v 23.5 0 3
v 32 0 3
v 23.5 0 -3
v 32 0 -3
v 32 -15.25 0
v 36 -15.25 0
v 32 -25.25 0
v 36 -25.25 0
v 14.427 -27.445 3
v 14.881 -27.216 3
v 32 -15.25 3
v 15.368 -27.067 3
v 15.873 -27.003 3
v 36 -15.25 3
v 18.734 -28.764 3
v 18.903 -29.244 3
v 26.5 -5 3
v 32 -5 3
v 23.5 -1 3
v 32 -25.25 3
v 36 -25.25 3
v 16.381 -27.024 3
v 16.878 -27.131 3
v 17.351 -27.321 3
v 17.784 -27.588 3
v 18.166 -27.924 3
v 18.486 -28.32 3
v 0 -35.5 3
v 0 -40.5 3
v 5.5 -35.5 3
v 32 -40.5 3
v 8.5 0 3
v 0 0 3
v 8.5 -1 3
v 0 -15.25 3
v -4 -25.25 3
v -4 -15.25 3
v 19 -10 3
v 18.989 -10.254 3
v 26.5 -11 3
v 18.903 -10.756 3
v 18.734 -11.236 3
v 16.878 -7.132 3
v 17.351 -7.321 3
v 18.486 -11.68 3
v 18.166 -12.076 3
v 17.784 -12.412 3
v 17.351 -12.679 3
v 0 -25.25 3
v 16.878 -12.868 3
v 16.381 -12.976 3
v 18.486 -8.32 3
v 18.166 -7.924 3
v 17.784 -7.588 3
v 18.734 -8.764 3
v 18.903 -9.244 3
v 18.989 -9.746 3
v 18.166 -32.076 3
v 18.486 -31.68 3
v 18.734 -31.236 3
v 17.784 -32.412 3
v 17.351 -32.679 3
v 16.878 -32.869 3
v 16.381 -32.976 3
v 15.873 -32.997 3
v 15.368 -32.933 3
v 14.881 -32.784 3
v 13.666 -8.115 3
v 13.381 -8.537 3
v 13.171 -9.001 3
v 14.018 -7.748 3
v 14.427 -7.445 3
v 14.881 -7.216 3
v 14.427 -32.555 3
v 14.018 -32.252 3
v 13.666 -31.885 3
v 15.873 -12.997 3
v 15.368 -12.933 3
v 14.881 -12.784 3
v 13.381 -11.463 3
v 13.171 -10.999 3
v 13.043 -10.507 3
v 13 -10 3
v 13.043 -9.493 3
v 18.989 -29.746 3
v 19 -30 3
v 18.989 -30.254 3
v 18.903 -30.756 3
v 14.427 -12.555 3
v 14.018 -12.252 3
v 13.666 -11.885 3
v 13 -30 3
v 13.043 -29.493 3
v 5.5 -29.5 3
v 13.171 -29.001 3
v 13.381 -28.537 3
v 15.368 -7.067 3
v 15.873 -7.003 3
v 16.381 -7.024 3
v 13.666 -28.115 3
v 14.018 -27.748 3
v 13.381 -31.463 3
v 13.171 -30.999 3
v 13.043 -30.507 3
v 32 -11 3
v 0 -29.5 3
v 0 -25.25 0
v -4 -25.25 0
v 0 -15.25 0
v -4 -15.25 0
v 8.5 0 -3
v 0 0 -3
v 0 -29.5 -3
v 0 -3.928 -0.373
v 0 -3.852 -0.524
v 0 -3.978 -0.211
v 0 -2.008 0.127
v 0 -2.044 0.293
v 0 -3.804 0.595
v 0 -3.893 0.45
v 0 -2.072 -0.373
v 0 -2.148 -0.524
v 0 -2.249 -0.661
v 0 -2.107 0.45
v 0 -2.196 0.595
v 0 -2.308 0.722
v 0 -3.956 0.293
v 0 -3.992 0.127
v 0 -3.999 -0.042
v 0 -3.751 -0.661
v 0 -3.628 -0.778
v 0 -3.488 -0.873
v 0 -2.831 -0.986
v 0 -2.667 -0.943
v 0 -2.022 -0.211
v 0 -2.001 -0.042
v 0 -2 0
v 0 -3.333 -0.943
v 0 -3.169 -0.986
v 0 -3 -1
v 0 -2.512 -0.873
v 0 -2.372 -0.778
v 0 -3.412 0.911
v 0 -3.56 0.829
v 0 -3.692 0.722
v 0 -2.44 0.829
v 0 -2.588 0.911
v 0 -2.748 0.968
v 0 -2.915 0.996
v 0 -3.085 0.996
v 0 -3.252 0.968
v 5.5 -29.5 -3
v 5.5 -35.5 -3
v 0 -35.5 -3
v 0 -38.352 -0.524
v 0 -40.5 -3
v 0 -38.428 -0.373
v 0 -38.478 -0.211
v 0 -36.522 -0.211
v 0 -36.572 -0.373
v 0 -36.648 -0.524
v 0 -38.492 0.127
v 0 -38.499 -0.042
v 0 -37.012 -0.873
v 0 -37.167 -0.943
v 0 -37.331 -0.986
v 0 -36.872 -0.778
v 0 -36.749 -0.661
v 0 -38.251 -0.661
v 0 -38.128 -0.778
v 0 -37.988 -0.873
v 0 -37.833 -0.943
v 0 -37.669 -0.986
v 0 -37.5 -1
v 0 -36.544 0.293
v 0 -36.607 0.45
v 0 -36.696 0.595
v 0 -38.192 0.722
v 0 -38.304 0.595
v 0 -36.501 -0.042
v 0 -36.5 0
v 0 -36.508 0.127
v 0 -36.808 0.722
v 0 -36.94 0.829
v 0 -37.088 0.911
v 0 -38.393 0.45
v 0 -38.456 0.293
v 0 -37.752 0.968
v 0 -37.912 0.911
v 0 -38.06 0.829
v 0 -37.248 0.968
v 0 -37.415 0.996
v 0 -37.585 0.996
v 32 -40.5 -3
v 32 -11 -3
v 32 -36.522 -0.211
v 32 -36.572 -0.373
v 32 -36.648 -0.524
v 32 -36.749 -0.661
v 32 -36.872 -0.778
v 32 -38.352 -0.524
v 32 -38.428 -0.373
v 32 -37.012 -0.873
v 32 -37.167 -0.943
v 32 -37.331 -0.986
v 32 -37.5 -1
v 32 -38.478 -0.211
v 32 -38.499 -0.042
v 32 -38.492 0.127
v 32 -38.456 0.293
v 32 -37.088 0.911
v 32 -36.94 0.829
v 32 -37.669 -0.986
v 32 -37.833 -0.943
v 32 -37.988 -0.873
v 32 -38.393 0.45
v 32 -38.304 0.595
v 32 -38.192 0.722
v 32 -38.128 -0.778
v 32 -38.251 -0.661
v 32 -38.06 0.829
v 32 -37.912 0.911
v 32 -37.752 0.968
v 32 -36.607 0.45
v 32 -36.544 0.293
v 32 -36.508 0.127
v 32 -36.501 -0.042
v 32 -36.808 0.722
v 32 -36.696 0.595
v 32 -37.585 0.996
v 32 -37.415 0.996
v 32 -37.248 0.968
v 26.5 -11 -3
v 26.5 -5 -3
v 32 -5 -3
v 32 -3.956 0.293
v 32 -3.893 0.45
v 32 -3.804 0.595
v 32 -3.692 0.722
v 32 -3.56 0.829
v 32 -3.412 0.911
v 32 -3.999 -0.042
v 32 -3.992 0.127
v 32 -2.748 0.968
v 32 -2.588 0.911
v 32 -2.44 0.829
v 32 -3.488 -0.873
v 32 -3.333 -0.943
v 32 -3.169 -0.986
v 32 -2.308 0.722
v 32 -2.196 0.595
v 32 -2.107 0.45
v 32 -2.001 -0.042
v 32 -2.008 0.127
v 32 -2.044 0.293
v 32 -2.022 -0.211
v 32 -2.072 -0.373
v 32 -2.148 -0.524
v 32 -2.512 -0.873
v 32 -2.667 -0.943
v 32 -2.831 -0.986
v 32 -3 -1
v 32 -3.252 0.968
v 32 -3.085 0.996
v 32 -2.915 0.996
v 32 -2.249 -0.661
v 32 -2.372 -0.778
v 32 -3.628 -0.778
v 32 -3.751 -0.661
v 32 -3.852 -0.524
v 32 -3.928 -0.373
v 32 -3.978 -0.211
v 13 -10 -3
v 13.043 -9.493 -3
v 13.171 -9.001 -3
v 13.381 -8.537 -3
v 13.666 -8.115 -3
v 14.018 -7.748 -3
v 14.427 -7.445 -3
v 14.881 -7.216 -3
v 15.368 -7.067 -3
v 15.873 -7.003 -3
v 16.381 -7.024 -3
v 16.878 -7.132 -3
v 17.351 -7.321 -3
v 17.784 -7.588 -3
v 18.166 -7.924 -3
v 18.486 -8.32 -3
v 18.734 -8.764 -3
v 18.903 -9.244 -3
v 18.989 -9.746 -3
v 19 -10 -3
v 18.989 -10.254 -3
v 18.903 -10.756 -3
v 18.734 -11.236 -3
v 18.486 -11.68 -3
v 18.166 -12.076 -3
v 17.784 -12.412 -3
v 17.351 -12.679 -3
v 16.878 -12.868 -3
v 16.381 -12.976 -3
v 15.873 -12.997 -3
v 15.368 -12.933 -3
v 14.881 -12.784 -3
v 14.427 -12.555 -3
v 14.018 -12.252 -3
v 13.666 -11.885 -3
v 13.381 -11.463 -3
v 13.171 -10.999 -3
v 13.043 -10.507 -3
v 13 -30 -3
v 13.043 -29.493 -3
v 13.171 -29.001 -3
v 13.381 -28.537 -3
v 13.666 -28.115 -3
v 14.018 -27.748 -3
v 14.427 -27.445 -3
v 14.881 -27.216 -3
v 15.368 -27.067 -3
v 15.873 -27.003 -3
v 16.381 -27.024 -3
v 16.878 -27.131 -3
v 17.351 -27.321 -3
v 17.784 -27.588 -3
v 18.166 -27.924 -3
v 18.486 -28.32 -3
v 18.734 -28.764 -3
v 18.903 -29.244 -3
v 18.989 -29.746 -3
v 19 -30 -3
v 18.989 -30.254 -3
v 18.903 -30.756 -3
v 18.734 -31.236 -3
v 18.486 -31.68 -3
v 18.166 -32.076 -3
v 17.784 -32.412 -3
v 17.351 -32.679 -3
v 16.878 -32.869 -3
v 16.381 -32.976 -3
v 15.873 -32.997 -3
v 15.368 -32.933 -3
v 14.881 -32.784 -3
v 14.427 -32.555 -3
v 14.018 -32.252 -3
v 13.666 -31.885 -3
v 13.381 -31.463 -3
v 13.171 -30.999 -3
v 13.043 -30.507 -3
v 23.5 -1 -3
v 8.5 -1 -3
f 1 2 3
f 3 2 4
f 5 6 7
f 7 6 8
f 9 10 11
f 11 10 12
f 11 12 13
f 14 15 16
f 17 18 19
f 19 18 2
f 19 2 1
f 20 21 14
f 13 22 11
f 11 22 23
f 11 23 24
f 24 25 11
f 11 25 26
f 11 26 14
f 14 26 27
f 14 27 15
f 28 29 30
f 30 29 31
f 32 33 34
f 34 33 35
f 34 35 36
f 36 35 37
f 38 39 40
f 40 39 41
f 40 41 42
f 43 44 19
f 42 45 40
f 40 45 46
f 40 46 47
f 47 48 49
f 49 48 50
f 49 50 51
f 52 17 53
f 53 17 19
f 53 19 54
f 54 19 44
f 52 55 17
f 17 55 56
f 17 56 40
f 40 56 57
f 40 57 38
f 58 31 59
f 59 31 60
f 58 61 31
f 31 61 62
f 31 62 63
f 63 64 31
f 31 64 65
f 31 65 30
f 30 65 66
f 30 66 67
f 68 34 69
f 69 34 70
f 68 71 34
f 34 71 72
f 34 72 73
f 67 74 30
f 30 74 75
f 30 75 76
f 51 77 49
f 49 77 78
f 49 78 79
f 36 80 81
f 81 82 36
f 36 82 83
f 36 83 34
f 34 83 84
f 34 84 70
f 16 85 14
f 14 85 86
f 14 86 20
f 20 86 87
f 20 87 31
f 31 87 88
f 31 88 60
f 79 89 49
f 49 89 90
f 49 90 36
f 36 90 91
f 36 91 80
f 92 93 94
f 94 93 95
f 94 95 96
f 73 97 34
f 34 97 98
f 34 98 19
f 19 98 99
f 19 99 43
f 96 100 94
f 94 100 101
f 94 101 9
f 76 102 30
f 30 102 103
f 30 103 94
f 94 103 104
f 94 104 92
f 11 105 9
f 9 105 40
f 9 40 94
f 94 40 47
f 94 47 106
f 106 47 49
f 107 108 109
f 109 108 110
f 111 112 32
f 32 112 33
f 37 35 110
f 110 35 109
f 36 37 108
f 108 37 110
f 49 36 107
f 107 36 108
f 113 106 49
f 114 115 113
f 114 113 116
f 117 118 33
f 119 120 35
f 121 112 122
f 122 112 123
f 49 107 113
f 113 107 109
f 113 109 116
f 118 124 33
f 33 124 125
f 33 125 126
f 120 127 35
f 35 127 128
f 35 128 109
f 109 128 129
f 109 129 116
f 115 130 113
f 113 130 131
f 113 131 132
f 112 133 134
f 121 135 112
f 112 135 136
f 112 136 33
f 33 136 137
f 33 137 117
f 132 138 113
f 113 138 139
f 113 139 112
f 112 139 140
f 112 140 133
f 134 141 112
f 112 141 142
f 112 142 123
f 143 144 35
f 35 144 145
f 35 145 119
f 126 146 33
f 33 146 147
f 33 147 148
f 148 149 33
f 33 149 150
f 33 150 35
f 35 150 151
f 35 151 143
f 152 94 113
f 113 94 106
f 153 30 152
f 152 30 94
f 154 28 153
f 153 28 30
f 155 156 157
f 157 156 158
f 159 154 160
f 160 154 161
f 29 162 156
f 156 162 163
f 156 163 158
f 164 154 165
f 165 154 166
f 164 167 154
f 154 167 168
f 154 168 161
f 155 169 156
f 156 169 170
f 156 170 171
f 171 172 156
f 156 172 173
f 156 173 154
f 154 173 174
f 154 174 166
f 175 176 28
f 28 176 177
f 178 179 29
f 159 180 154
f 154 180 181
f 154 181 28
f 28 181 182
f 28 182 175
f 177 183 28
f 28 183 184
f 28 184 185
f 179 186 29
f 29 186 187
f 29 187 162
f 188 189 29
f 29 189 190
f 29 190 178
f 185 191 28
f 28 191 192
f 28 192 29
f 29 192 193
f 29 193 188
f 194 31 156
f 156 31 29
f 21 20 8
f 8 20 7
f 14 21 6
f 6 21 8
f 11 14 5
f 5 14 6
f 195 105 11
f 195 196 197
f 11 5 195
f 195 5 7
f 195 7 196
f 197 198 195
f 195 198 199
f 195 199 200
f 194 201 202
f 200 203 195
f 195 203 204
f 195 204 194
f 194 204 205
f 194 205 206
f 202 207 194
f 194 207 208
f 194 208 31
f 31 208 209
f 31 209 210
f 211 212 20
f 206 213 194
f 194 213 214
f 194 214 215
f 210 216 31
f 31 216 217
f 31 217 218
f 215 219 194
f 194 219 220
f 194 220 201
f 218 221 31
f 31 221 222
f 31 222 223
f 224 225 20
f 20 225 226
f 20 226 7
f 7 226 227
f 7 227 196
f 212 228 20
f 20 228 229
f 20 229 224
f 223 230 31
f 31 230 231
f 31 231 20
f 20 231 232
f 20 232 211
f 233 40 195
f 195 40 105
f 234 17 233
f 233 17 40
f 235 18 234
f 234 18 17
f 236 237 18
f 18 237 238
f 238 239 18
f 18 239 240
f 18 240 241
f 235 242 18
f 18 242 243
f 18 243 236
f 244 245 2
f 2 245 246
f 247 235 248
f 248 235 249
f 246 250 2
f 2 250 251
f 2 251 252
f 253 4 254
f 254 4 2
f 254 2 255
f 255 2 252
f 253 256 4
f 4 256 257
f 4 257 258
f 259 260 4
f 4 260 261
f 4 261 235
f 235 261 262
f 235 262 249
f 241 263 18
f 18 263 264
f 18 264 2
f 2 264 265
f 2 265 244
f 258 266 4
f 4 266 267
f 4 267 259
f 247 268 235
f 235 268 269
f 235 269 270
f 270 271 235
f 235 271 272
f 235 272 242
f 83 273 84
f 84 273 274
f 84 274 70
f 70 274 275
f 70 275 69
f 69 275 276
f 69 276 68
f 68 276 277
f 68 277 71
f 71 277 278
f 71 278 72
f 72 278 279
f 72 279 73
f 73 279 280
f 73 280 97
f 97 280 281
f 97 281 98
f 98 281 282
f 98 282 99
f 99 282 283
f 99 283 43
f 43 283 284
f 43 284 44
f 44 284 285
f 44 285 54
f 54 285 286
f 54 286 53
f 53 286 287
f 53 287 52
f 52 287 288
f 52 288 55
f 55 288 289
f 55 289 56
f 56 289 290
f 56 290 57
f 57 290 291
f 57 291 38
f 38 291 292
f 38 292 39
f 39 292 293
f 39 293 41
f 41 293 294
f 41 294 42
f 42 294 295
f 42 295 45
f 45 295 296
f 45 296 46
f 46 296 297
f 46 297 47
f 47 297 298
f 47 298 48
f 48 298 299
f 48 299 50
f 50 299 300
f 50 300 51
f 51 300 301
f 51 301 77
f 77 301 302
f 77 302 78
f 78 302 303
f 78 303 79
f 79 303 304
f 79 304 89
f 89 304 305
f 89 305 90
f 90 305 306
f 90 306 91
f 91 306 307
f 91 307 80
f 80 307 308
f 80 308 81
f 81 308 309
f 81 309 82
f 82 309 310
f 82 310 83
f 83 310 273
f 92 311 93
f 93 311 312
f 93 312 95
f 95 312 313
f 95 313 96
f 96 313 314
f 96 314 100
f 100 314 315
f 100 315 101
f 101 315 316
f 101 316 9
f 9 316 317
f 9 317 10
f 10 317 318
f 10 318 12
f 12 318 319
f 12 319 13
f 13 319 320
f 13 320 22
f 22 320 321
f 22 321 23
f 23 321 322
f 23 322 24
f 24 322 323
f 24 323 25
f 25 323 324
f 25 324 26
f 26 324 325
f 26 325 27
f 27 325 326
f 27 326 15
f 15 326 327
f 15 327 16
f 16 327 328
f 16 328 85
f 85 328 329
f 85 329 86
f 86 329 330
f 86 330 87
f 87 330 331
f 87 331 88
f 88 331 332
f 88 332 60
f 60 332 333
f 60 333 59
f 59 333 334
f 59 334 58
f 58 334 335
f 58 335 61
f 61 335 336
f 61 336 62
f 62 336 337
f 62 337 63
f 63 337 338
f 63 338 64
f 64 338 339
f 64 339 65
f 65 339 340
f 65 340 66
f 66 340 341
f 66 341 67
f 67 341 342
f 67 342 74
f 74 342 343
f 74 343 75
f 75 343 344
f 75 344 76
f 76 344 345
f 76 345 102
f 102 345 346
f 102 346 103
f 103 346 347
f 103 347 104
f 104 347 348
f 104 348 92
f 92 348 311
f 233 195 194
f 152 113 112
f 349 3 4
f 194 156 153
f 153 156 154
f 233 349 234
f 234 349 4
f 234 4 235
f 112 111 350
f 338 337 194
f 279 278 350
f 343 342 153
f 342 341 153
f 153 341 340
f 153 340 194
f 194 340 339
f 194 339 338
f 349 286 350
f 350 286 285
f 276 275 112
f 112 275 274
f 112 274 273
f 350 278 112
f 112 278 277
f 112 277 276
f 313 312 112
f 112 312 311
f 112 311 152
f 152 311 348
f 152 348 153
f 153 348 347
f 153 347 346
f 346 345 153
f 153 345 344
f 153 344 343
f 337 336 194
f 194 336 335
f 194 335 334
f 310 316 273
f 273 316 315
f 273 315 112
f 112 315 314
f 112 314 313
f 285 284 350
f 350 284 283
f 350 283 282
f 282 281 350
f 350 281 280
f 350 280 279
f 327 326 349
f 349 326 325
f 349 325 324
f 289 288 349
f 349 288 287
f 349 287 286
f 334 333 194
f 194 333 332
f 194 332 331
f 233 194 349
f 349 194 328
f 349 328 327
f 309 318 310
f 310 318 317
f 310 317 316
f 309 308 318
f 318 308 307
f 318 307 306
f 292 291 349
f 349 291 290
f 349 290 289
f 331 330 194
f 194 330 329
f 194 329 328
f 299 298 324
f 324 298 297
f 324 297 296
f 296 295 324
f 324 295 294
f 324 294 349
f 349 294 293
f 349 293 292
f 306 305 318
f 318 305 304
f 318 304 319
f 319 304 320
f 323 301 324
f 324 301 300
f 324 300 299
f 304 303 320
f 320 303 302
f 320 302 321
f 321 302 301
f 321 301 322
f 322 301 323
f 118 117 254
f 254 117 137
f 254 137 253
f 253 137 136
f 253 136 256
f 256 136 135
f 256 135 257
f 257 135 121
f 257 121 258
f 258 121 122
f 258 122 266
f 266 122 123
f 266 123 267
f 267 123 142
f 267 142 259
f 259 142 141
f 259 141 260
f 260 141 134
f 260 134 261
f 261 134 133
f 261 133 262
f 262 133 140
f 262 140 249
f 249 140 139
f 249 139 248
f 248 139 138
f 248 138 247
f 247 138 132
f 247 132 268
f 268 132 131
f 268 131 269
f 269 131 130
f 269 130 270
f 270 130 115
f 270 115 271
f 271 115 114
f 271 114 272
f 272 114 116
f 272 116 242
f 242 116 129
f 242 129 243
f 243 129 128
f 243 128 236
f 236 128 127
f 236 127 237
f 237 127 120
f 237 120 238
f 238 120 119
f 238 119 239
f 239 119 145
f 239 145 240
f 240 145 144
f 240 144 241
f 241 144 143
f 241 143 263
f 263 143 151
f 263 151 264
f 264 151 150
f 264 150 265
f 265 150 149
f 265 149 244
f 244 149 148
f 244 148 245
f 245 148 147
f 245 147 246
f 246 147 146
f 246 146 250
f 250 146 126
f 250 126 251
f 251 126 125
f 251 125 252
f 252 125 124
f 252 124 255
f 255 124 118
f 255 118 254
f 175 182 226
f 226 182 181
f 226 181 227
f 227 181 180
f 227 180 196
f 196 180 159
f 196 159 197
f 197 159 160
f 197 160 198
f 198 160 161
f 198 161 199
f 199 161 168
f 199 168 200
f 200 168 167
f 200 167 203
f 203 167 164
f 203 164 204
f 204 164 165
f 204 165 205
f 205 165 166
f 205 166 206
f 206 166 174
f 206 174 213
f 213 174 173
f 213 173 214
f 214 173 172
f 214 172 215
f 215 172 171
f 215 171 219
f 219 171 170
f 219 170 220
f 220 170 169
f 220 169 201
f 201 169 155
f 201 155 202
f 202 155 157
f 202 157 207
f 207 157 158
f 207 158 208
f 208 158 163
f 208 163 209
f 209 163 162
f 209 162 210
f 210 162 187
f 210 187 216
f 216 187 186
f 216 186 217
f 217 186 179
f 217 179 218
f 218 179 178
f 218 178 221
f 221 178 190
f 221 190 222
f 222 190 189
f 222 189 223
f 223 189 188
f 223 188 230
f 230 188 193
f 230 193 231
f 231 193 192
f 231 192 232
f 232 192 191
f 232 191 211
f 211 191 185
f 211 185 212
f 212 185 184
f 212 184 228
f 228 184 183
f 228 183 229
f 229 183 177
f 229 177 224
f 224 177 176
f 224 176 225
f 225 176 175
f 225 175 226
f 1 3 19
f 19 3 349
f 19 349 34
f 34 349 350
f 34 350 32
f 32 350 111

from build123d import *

# Parameters (mm, degrees)
SKETCH_1_R          = 3
EXTRUDE_1_DEPTH     = 3
EXTRUDE_START       = -6
SKETCH_2_R          = 3
EXTRUDE_2_DEPTH     = 6
SKETCH_3_R          = 1
CUT_EXTRUDE_1_DEPTH = 55.270157545
SKETCH_6_W          = 15
SKETCH_6_H          = 1
CUT_EXTRUDE_5_DEPTH = 10


with BuildPart() as part:
    # 草图1 → 凸台-拉伸1 (new body)
    with BuildSketch(Plane.XY):
        Polygon((0, 0), (0, -15.25), (-4, -15.25), (-4, -25.25), (0, -25.25), (0, -29.5), (5.5, -29.5), (5.5, -35.5), (0, -35.5), (0, -40.5), (32, -40.5), (32, -25.25), (36, -25.25), (36, -15.25), (32, -15.25), (32, -11), (26.5, -11), (26.5, -5), (32, -5), (32, 0), align=None)
        with Locations((16, -10)):
            Circle(SKETCH_1_R, mode=Mode.SUBTRACT)
        with Locations((16, -30)):
            Circle(SKETCH_1_R, mode=Mode.SUBTRACT)
    extrude(amount=EXTRUDE_1_DEPTH)

    # 草图2 → 凸台-拉伸2 (add)
    with BuildSketch(Plane.XY.offset(3).offset(EXTRUDE_START)):
        Polygon((0, 0), (0, -29.5), (5.5, -29.5), (5.5, -35.5), (0, -35.5), (0, -40.5), (32, -40.5), (32, -11), (26.5, -11), (26.5, -5), (32, -5), (32, 0), align=None)
        with Locations((16, -10)):
            Circle(SKETCH_2_R, mode=Mode.SUBTRACT)
        with Locations((16, -30)):
            Circle(SKETCH_2_R, mode=Mode.SUBTRACT)
    extrude(amount=EXTRUDE_2_DEPTH)

    # 草图3 → 切除-拉伸1 (cut, through all)
    with BuildSketch(Plane(origin=(32, 0, 0), x_dir=(0, 0, -1), z_dir=(1, 0, 0))):
        with Locations((0, -3)):
            Circle(SKETCH_3_R)
        with Locations((0, -37.5)):
            Circle(SKETCH_3_R)
    extrude(amount=-CUT_EXTRUDE_1_DEPTH, mode=Mode.SUBTRACT)

    # 草图6 → 切除-拉伸5 (cut)
    with BuildSketch(Plane.XY.offset(3)):
        with Locations((16, -0.5)):
            Rectangle(SKETCH_6_W, SKETCH_6_H)
    extrude(amount=-CUT_EXTRUDE_5_DEPTH, mode=Mode.SUBTRACT)


solid = part.part
